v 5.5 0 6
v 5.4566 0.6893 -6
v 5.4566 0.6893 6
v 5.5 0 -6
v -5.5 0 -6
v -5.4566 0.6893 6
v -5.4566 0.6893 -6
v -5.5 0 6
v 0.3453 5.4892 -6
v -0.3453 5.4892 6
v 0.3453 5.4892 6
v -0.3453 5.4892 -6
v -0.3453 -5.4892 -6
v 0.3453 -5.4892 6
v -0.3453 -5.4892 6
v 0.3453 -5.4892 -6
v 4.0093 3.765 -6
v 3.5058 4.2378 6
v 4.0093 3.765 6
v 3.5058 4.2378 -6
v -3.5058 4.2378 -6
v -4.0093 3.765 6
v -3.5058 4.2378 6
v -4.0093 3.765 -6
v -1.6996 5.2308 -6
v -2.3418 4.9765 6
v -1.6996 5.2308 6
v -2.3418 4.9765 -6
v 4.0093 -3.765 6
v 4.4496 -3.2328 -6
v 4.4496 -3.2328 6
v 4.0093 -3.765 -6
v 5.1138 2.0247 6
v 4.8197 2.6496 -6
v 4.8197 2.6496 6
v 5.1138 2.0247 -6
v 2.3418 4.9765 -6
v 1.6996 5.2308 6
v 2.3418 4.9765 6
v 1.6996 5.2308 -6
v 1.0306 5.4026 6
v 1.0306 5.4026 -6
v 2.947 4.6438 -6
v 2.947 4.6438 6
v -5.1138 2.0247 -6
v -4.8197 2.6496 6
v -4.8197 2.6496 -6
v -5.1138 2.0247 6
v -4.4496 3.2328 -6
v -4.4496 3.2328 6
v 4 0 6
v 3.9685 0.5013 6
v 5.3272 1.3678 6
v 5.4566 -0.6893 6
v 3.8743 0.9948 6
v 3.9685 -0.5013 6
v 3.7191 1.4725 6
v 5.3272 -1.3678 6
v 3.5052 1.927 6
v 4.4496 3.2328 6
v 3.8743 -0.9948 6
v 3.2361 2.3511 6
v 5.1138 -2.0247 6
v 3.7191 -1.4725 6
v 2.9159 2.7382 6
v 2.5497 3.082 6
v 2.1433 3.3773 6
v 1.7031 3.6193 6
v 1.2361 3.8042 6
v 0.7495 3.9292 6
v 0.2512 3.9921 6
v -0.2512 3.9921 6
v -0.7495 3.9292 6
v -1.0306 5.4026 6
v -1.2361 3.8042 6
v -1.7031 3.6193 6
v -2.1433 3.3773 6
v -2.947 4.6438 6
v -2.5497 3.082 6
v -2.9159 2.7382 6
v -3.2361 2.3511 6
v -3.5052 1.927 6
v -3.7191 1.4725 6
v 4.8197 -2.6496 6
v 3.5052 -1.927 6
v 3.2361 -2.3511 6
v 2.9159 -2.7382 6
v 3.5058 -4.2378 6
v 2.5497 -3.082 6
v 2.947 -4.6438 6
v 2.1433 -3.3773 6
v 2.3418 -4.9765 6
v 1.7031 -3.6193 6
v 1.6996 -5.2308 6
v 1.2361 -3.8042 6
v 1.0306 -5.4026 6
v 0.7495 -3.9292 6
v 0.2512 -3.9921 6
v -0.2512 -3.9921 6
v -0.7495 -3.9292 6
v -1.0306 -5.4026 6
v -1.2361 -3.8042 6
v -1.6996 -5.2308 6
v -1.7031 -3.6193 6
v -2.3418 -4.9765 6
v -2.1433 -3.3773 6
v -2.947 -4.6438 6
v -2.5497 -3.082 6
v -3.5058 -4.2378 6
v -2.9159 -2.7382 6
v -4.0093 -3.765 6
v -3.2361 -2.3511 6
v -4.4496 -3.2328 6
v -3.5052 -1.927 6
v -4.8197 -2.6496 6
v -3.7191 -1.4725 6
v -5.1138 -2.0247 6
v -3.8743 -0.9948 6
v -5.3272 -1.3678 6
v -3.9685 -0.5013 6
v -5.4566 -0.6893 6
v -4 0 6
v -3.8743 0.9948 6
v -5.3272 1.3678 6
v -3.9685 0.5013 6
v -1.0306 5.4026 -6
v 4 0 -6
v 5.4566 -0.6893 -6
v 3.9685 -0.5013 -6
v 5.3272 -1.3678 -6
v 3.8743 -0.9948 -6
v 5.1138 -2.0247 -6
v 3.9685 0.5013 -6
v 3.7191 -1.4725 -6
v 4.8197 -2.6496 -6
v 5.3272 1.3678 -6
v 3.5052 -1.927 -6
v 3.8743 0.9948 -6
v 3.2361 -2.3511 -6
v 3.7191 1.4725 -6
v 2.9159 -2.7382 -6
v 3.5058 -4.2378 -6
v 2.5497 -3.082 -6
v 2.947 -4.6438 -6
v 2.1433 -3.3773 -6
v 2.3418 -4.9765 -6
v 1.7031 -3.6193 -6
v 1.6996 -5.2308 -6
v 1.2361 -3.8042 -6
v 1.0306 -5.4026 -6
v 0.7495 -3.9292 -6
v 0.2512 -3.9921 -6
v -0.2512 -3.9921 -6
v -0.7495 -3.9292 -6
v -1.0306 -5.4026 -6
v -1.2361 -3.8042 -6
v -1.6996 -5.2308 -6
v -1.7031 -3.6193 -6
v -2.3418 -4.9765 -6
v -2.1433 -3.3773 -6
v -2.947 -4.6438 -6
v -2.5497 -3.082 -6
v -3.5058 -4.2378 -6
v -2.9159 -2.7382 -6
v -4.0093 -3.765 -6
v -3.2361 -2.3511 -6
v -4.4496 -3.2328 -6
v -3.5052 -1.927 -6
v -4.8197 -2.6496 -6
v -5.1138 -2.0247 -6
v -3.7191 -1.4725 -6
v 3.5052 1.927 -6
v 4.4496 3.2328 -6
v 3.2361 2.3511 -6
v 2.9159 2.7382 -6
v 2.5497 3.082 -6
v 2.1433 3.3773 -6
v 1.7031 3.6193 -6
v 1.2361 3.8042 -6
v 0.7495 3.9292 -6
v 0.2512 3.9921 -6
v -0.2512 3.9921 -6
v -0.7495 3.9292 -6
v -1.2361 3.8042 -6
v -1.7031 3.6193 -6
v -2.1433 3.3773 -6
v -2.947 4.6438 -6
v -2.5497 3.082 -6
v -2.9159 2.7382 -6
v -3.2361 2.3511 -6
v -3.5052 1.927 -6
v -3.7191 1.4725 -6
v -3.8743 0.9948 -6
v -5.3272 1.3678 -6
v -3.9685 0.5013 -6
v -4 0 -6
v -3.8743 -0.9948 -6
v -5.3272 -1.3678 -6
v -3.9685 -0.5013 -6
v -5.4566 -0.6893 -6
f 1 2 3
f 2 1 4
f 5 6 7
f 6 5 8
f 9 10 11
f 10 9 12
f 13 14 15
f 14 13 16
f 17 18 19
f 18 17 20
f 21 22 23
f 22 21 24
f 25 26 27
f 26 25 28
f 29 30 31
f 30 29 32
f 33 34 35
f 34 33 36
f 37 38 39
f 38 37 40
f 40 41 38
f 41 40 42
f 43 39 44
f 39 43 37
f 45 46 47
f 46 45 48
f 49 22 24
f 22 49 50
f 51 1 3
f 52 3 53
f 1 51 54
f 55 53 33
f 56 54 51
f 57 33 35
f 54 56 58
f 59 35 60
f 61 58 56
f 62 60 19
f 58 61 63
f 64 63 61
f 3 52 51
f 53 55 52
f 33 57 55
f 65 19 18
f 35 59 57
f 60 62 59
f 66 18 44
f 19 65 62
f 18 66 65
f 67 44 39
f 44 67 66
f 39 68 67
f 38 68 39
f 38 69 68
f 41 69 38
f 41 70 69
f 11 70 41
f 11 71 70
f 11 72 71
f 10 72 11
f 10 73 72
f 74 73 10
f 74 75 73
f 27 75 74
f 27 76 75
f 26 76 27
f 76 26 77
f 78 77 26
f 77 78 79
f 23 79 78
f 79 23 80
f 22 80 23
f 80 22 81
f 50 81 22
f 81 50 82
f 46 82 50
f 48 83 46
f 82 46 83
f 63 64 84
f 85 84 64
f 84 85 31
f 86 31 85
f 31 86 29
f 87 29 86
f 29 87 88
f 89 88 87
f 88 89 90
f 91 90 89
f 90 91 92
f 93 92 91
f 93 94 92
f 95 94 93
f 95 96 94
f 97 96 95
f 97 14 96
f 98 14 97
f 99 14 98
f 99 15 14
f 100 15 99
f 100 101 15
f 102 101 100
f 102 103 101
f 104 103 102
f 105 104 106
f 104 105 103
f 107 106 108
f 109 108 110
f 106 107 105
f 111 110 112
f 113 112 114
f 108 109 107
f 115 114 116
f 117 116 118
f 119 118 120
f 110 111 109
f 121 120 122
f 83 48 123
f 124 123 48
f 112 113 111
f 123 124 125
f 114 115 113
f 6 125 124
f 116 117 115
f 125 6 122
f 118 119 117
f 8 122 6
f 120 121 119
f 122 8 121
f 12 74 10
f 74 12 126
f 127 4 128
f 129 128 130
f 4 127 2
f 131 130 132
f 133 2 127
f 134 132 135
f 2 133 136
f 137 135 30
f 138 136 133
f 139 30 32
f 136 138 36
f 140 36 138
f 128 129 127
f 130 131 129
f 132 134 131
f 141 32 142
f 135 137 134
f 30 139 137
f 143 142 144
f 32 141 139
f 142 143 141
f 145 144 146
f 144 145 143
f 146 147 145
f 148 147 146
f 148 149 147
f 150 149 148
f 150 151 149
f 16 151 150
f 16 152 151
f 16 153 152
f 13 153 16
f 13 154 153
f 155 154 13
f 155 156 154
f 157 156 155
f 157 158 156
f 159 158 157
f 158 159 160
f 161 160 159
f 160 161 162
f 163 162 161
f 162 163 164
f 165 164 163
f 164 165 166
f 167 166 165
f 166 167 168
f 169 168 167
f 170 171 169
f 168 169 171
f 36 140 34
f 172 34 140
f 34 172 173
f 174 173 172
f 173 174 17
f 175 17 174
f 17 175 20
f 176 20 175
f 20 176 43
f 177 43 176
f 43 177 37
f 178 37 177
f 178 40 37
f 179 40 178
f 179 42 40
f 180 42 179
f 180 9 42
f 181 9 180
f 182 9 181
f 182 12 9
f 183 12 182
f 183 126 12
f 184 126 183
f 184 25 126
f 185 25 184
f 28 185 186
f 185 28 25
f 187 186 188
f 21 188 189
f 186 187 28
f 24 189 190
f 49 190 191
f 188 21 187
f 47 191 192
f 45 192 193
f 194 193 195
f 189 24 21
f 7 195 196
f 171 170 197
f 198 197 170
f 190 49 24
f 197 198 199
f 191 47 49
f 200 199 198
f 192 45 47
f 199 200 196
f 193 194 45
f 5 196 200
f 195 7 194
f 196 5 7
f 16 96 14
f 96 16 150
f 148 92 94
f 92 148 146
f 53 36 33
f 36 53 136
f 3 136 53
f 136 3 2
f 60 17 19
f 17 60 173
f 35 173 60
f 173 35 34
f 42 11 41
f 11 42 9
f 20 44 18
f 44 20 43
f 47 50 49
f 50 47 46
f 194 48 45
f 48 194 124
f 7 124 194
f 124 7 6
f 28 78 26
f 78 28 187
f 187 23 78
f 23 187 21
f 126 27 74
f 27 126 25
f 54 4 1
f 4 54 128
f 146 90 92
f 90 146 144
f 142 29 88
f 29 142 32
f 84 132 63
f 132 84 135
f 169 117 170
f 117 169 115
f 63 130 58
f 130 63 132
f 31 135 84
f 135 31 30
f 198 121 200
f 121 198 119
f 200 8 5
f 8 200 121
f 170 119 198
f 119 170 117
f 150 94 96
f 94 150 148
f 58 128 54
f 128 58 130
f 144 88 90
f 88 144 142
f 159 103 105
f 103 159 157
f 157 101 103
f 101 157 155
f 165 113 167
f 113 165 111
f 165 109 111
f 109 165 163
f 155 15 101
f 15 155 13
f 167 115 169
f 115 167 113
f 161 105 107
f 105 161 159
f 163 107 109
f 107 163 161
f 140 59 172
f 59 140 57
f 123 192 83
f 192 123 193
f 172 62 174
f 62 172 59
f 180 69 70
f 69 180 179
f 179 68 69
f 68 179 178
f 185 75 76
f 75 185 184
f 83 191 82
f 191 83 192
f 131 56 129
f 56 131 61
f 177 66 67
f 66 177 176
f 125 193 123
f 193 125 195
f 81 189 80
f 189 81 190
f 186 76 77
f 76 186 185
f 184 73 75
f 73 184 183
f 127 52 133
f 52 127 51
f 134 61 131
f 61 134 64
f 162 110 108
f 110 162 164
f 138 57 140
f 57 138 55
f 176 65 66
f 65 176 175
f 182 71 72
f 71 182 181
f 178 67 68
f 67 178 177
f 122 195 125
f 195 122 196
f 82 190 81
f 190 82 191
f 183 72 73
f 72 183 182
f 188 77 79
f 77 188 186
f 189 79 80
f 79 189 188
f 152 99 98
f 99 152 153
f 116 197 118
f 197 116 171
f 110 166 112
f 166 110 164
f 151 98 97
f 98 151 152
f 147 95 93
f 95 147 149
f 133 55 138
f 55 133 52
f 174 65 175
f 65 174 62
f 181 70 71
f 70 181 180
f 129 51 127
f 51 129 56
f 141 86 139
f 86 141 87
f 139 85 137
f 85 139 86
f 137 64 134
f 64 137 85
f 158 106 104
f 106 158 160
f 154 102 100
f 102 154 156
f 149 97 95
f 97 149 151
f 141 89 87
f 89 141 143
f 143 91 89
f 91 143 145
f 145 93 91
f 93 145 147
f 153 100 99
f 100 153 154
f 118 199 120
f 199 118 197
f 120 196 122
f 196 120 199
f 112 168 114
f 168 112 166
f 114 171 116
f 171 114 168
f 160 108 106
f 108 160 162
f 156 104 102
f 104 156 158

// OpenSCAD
$fn = 50;


difference() {
	union() {
		translate(v = [0, 0, -6.0000000000]) {
			cylinder(h = 12, r = 5.5000000000);
		}
	}
	union() {
		translate(v = [0, 0, -100.0000000000]) {
			cylinder(h = 200, r = 4.0000000000);
		}
	}
}
